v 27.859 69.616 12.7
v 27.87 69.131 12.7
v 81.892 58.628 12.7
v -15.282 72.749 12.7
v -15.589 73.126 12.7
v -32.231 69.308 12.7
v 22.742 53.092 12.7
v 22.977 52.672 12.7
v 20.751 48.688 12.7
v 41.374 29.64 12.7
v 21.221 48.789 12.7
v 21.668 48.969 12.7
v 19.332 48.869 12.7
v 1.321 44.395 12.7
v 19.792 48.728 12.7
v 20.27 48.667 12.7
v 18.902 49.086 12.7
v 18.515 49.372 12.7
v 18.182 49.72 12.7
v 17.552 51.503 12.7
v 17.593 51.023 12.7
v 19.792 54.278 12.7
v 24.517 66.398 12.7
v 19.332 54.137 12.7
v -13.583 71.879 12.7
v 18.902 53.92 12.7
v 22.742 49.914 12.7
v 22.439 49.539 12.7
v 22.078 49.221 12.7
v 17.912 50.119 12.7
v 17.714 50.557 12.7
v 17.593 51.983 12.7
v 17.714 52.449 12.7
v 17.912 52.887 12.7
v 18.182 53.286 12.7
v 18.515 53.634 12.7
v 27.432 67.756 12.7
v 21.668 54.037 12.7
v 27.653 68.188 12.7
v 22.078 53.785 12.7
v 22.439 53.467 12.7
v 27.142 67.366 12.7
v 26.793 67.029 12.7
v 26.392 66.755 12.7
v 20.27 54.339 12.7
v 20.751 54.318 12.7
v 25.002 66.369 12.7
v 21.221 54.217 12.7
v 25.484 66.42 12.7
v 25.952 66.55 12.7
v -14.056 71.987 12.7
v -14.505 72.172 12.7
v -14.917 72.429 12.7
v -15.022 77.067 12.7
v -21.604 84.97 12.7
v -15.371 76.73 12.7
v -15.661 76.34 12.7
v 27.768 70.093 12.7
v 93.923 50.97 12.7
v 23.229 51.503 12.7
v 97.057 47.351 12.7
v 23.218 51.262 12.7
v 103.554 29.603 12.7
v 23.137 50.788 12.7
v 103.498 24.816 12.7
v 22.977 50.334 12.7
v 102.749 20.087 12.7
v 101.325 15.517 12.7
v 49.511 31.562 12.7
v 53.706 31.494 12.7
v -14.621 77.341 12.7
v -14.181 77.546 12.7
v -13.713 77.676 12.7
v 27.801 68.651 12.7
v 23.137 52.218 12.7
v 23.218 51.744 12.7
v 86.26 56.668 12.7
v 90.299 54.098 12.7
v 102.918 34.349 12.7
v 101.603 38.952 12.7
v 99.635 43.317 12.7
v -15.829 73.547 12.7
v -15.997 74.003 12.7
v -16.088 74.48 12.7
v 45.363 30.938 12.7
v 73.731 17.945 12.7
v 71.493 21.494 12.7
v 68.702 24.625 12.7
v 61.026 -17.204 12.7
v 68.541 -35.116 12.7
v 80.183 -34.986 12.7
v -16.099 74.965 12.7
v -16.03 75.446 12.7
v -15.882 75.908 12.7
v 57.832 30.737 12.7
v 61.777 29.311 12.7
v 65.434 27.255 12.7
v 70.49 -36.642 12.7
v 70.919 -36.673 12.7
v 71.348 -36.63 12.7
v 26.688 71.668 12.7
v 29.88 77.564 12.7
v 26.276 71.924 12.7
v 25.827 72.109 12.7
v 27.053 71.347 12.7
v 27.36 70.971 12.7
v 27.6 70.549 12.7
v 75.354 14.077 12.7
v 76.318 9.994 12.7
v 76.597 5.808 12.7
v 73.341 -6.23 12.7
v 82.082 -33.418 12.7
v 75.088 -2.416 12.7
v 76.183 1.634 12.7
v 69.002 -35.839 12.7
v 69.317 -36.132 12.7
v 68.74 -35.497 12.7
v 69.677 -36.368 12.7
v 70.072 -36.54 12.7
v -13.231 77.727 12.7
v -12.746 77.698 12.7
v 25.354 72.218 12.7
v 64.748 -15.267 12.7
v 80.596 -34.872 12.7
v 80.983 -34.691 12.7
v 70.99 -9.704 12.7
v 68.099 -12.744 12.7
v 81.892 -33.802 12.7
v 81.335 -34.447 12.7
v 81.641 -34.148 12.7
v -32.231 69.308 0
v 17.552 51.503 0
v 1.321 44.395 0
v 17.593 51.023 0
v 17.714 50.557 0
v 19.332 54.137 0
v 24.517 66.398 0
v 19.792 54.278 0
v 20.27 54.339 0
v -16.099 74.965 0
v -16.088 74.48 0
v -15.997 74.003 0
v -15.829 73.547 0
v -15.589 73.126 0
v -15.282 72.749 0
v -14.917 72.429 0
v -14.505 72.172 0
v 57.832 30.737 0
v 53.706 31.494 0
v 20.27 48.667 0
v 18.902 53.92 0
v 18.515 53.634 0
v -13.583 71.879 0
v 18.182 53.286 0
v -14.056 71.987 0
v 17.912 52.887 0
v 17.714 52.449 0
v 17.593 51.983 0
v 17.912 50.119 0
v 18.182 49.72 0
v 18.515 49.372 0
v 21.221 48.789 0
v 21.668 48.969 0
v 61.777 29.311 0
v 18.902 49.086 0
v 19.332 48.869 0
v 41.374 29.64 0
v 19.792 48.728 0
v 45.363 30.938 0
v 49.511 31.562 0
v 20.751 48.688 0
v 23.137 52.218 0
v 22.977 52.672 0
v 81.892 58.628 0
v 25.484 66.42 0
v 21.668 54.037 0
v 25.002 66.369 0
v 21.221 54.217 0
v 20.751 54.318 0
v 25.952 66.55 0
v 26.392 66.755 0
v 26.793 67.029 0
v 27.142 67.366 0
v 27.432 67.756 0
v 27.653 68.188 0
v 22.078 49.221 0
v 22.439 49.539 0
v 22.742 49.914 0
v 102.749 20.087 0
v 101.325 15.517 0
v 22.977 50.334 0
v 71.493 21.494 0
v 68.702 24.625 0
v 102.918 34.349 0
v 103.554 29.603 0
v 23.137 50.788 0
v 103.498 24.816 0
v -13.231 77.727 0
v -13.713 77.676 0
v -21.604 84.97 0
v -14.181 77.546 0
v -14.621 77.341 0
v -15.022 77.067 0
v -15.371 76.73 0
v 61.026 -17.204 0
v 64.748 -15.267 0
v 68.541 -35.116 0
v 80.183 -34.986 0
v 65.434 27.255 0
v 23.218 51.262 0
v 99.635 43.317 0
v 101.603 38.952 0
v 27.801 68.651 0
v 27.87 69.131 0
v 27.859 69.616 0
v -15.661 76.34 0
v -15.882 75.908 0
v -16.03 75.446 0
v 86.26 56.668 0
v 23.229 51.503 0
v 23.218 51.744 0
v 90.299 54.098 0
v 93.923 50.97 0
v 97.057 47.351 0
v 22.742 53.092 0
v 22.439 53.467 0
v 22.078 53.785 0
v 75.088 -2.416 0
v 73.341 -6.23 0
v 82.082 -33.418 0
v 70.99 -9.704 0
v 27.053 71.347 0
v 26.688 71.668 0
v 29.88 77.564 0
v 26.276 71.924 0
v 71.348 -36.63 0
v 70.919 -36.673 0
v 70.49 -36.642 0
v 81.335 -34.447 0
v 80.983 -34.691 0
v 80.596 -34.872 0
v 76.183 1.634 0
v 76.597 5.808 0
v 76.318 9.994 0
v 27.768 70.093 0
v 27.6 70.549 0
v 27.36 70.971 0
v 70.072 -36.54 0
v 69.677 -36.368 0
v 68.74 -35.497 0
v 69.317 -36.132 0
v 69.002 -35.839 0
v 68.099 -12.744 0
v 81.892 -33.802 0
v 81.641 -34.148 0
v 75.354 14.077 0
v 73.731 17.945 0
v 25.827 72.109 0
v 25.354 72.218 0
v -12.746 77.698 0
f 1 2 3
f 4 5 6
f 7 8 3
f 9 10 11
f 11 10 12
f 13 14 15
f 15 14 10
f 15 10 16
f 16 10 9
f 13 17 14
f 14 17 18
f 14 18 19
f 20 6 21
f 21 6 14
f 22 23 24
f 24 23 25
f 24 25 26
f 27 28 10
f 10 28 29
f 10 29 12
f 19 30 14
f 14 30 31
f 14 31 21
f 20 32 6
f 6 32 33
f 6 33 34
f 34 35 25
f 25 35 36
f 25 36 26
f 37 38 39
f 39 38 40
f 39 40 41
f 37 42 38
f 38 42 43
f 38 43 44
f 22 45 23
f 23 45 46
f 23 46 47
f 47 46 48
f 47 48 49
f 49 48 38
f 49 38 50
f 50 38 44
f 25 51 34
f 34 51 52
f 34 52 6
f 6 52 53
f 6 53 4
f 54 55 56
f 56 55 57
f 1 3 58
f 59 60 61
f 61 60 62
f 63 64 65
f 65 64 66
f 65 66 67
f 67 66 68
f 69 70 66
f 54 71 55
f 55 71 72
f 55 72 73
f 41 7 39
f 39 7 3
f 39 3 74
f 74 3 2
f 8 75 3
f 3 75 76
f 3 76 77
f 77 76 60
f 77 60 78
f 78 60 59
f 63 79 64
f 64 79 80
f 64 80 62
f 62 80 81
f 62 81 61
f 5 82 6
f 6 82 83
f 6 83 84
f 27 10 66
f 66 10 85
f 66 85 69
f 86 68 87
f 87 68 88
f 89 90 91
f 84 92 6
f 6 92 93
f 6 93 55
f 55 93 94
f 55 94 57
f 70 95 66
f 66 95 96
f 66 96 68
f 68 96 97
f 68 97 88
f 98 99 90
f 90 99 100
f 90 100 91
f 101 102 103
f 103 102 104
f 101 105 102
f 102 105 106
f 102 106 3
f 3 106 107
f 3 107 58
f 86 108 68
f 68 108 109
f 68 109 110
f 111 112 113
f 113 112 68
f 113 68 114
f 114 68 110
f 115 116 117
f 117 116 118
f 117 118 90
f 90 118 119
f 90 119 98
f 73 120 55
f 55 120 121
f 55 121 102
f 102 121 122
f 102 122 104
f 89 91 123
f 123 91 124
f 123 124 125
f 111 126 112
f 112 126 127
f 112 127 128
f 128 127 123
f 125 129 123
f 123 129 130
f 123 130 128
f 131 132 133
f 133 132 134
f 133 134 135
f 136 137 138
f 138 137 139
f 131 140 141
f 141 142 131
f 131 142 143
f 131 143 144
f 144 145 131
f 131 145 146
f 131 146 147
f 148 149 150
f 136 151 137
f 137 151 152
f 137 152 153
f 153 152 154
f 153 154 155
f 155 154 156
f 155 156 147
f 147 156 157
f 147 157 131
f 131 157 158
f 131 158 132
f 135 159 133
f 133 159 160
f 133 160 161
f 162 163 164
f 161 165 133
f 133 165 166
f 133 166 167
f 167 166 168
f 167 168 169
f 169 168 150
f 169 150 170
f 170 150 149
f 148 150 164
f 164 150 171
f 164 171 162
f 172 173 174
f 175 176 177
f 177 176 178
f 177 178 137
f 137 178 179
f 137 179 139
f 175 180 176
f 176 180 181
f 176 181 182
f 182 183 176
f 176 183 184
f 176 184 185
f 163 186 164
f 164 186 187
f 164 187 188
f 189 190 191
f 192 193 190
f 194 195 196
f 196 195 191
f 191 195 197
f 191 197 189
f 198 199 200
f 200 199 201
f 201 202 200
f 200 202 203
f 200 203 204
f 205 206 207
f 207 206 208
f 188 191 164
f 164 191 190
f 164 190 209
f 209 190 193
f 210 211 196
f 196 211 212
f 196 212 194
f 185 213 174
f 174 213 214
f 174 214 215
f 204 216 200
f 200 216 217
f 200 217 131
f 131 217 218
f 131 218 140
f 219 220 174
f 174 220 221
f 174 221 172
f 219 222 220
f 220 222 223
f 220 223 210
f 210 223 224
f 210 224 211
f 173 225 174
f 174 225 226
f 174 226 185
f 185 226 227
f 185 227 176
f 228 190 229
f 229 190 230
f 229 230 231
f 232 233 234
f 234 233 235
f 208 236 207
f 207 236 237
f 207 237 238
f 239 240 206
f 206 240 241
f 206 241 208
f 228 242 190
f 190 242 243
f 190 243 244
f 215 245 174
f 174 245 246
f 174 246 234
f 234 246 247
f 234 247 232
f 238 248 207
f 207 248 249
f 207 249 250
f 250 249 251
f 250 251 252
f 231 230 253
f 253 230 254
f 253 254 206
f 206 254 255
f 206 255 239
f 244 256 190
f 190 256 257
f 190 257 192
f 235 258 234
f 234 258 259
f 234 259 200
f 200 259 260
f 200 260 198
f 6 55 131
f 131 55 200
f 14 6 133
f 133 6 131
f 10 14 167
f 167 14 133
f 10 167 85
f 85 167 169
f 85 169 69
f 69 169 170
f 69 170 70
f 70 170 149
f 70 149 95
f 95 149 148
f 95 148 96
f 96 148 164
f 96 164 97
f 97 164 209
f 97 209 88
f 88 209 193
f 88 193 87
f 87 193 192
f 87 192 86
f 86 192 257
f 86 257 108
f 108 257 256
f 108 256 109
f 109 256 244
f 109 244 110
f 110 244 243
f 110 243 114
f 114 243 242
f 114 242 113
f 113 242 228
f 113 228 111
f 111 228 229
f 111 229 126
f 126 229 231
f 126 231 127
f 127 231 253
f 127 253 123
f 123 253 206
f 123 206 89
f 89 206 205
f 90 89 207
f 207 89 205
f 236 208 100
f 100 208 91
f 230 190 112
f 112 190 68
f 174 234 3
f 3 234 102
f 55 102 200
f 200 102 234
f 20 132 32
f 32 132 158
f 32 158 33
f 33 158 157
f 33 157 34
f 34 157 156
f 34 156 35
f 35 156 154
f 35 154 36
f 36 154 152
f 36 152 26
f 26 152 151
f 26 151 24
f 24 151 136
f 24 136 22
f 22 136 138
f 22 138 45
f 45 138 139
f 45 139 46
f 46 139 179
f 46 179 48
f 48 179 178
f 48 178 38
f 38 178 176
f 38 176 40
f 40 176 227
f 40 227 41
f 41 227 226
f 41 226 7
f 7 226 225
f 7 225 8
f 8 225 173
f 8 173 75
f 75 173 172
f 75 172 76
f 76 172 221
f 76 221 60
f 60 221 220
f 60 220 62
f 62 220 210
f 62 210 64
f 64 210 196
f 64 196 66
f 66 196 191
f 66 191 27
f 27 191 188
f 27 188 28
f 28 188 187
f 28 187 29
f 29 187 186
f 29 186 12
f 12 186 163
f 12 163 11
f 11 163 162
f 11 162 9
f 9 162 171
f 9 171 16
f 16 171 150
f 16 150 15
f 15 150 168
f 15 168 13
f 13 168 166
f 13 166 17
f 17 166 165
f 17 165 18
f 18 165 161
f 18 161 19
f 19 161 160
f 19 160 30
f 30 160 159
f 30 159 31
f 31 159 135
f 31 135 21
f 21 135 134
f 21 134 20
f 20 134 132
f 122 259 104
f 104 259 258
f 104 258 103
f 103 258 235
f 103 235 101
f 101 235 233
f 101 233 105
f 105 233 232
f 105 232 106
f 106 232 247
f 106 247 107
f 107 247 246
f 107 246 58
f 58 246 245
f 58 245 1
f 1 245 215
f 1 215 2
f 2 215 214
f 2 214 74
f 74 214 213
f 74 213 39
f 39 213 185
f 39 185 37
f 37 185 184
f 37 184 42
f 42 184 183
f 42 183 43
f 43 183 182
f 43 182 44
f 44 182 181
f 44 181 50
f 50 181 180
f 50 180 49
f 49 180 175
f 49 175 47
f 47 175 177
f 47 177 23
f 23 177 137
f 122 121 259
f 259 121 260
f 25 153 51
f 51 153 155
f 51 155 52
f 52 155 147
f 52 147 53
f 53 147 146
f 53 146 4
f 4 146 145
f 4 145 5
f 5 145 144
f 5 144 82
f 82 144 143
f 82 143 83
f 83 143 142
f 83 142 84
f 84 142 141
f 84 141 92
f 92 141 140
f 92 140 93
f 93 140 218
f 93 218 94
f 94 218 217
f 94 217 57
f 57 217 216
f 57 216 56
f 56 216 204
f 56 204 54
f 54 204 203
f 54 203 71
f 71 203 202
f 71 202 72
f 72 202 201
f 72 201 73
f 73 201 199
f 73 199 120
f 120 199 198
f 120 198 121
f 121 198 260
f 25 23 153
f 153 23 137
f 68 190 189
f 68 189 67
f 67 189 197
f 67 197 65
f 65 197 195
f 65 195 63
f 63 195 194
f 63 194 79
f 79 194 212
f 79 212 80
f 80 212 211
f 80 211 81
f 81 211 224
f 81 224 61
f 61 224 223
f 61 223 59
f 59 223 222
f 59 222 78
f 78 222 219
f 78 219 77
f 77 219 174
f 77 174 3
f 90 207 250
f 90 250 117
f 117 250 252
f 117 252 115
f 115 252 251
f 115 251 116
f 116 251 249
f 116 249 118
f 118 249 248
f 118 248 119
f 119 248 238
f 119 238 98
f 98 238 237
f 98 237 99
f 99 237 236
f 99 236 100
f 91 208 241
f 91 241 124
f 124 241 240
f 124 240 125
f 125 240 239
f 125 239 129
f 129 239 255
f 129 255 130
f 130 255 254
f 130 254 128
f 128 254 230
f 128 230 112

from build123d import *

# Parameters (mm, degrees)
SKETCH1_R           = 2.838382548
BOSS_EXTRUDE2_DEPTH = 12.7
FILLET5_R           = 33.02
FILLET7_R           = 2.54


with BuildPart() as part:
    # Sketch1 → Boss-Extrude2 (new body)
    with BuildSketch(Plane.XY):
        with BuildLine():
            Line((-21.603638559, 84.96960614), (29.87982891, 77.564224626))
            Line((29.87982891, 77.564224626), (113.413965473, 47.151661477))
            Line((113.413965473, 47.151661477), (109.035804568, 35.126174209))
            Line((109.035804568, 35.126174209), (95.280304394, 0.145728286))
            Line((95.280304394, 0.145728286), (81.56676708, -34.728005444))
            Line((81.56676708, -34.728005444), (69.33354083, -37.004919145))
            Line((69.33354083, -37.004919145), (61.026465875, -17.204201513))
            ThreePointArc((61.026465875, -17.204201513), (76.334091657, 9.884016708), (53.926809391, 31.471250781))
            ThreePointArc((53.926809391, 31.471250781), (47.534060902, 31.352091343), (41.37361205, 29.640278808))
            Line((41.37361205, 29.640278808), (1.321326785, 44.395112668))
            Line((1.321326785, 44.395112668), (-32.231275521, 69.307770201))
            Line((-32.231275521, 69.307770201), (-21.603638559, 84.96960614))
        make_face()
        with Locations((20.390142766, 51.502972215)):
            Circle(SKETCH1_R, mode=Mode.SUBTRACT)
        with BuildLine():
            Line((24.516957739, 66.398380962), (-13.583042261, 71.878684632))
            ThreePointArc((-13.583042261, 71.878684632), (-16.074090815, 75.206755234), (-12.746020212, 77.697803788))
            Line((-12.746020212, 77.697803788), (25.353979788, 72.217500118))
            ThreePointArc((25.353979788, 72.217500118), (27.845028342, 68.889429516), (24.516957739, 66.398380962))
        make_face(mode=Mode.SUBTRACT)
    extrude(amount=BOSS_EXTRUDE2_DEPTH)

    # Fillet5
    fillet5_edges = [part.edges().sort_by_distance(p)[0] for p in [
        (113.413965473, 47.151661477, 6.35),
    ]]
    fillet(fillet5_edges, radius=FILLET5_R)

    # Fillet7
    fillet7_edges = [part.edges().sort_by_distance(p)[0] for p in [
        (81.56676708, -34.728005444, 6.35),
        (69.33354083, -37.004919145, 6.35),
    ]]
    fillet(fillet7_edges, radius=FILLET7_R)


solid = part.part
